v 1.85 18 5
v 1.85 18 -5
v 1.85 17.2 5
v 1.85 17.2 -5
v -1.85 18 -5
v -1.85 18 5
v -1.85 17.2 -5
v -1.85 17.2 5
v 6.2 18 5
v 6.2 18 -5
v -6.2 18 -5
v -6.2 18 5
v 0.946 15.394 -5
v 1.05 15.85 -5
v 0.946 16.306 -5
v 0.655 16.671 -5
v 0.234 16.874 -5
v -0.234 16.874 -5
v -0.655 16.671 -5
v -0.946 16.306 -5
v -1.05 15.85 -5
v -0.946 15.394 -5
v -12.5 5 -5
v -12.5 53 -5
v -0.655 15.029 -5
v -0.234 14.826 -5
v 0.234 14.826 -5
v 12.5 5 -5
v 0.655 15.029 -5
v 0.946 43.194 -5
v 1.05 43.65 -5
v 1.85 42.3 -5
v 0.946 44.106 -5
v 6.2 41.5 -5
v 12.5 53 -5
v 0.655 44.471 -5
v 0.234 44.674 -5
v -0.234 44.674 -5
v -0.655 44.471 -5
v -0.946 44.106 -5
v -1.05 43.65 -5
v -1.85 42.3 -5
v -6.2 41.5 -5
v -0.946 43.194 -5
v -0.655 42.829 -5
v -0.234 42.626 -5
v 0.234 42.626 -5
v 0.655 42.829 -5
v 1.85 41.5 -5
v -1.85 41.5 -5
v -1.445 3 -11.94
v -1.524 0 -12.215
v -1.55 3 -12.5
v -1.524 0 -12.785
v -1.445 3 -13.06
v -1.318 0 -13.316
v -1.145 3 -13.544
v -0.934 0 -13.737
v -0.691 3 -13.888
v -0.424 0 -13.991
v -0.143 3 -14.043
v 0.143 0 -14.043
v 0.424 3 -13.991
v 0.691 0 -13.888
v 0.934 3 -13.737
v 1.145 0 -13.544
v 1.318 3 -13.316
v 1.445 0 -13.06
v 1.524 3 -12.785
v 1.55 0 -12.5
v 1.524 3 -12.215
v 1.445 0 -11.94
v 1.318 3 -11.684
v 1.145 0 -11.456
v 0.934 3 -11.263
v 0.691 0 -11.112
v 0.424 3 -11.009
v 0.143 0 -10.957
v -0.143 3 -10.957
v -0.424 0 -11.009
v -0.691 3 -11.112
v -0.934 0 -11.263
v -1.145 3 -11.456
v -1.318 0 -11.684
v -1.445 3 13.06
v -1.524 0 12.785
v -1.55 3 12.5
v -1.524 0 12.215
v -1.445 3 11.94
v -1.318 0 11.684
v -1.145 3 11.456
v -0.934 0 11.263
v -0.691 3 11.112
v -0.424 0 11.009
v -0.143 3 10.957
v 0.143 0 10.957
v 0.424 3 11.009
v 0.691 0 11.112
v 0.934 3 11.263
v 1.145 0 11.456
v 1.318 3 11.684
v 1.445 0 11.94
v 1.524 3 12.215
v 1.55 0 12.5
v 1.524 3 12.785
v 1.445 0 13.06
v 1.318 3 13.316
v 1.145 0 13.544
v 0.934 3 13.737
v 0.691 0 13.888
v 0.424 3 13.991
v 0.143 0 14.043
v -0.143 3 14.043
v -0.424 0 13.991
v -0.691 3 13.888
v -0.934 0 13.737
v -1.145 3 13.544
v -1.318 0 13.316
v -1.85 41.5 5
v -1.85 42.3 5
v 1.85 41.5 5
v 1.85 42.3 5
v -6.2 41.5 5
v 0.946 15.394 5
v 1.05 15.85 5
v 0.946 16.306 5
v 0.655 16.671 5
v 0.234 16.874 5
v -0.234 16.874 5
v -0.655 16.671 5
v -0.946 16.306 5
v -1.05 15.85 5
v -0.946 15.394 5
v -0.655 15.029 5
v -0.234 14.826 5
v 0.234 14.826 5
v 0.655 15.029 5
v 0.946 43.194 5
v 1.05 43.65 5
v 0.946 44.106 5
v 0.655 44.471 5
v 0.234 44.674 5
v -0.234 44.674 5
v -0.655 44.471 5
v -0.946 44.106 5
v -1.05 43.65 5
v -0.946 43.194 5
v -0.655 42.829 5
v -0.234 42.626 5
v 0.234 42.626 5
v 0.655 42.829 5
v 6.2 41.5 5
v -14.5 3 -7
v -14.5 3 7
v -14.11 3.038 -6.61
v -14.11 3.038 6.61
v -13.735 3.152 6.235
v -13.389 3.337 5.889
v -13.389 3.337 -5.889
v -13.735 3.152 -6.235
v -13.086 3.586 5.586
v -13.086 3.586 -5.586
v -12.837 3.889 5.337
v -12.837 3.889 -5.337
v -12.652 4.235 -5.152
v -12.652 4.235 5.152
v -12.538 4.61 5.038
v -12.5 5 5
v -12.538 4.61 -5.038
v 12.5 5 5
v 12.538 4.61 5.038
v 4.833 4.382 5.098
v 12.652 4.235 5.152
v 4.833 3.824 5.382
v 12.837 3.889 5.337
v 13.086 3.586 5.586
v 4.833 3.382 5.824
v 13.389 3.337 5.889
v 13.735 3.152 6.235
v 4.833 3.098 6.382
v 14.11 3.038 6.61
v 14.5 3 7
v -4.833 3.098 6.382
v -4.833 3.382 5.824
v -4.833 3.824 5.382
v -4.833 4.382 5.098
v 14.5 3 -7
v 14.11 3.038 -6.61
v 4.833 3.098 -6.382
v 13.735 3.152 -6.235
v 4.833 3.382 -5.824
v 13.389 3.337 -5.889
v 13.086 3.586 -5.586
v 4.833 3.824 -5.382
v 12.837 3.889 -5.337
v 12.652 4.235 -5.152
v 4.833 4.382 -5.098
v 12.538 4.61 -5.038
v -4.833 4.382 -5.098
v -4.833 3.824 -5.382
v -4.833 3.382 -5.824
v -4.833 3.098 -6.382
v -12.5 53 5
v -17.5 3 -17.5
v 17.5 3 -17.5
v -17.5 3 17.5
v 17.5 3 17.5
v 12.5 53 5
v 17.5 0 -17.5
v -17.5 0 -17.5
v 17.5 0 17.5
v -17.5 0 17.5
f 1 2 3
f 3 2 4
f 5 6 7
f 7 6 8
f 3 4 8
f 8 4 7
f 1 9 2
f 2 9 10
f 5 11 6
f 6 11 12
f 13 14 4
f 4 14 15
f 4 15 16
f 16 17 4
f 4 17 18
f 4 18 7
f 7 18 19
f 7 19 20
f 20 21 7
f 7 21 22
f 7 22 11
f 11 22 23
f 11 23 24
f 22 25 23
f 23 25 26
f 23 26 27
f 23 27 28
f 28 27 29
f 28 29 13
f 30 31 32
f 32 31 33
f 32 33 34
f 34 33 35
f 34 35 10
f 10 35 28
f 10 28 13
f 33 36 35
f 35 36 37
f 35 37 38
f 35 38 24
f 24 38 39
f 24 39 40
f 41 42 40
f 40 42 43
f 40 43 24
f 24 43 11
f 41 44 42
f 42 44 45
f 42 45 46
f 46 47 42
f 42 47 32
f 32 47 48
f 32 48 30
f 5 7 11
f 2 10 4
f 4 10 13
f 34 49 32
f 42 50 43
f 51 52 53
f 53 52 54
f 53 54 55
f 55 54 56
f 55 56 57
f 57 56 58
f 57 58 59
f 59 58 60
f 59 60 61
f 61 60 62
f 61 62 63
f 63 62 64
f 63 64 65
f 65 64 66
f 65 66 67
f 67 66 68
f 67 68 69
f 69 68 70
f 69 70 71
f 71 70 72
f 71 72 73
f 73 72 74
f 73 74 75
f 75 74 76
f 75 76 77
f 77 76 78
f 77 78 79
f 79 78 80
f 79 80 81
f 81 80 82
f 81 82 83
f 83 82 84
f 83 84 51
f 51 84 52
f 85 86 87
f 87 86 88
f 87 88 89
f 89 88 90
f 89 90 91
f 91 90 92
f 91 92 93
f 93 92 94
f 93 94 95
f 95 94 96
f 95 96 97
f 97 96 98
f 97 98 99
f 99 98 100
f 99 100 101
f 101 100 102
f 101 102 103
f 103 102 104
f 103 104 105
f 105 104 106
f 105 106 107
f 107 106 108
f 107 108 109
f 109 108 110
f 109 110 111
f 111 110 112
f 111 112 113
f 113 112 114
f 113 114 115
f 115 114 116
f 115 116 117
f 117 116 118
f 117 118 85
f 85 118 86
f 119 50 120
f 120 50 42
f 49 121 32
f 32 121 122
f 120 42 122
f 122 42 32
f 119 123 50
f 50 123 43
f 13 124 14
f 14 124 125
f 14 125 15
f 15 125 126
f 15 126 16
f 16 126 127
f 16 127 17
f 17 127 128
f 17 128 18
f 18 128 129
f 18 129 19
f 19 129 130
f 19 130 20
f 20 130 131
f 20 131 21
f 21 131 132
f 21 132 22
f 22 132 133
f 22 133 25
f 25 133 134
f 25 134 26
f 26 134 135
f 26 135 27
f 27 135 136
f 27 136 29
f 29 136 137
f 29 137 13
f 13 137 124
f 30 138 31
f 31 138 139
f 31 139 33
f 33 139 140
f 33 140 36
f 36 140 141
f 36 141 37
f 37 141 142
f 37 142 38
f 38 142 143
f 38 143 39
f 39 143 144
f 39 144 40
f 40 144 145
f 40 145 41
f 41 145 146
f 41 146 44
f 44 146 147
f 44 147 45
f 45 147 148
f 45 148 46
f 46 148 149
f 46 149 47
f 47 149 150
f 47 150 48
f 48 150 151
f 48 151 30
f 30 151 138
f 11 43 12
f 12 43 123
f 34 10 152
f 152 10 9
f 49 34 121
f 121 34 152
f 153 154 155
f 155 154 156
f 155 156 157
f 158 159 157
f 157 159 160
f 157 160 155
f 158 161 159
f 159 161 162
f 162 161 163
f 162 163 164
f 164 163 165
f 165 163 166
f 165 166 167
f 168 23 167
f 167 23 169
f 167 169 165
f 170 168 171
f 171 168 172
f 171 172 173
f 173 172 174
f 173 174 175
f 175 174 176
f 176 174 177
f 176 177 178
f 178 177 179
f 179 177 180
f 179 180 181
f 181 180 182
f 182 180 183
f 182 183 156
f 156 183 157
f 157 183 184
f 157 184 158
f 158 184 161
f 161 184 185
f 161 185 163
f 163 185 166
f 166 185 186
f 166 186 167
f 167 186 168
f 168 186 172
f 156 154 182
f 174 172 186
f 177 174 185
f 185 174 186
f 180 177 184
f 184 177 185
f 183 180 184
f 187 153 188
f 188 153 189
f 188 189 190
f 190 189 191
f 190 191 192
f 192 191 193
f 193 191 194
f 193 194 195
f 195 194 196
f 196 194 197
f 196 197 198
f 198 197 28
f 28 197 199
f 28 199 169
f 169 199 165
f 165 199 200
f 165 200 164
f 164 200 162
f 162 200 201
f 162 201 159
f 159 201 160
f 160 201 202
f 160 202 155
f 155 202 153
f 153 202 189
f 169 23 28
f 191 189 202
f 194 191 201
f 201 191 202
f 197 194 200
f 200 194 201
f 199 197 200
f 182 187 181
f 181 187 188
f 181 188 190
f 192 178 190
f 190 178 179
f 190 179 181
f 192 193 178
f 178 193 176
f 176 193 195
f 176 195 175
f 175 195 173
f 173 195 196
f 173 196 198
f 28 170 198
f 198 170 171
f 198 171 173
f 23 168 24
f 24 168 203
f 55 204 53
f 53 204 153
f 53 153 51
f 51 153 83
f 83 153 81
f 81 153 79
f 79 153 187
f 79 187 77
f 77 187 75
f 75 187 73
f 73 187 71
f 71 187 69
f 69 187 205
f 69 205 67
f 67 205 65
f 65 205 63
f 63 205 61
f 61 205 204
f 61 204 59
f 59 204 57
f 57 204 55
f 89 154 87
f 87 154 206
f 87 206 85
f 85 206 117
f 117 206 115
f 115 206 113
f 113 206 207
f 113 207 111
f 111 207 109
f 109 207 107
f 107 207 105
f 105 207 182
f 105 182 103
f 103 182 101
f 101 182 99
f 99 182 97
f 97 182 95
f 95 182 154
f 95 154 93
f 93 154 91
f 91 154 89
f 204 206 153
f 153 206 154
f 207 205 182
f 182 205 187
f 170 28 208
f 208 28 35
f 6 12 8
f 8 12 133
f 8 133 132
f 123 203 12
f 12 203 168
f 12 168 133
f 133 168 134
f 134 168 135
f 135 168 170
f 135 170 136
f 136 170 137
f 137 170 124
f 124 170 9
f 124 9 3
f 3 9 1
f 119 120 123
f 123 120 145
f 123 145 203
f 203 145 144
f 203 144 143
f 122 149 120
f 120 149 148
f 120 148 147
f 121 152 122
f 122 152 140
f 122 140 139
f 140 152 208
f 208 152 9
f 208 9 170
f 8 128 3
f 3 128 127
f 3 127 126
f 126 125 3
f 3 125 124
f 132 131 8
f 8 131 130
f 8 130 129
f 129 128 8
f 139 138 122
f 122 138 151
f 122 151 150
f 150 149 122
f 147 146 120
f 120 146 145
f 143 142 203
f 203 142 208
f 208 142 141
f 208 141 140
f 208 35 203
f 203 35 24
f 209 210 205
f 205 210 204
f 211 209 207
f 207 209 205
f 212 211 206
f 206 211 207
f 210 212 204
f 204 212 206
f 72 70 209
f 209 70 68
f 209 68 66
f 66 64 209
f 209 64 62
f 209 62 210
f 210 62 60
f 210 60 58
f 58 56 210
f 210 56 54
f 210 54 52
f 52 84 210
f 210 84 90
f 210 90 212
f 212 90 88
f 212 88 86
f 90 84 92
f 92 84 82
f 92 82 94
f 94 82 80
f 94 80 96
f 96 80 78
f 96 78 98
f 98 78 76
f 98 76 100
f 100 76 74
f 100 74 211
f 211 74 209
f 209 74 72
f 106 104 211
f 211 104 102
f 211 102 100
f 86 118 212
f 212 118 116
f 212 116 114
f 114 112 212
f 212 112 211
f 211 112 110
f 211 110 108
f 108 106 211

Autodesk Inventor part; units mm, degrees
ref_plane "YZ Plane" through (0, 0, 0) normal (1, 0, 0) x (0, 1, 0)
ref_plane "XZ Plane" through (0, 0, 0) normal (0, 1, 0) x (-1, 0, 0)
ref_plane "XY Plane" through (0, 0, 0) normal (0, 0, 1) x (1, 0, 0)
sketch "Sketch1" plane through (0, 0, 0) normal (0, 1, 0) x (-1, 0, 0)
  line L0 (-17.5, -17.5) -> (17.5, -17.5)
  line L1 (17.5, -17.5) -> (17.5, 17.5)
  line L2 (17.5, 17.5) -> (-17.5, 17.5)
  line L3 (-17.5, 17.5) -> (-17.5, -17.5)
  line L4 (-17.5, -17.5) -> (17.5, 17.5) construction
  line L5 (17.5, -17.5) -> (-17.5, 17.5) construction
  point P0 (0, 0)
  dimension "d0" = 35
  dimension "d1" = 35
extrude "Extrusion1" add sketch "Sketch1" along normal blind 3
sketch "Sketch2" plane through (0, 3, 0) normal (0, 1, 0) x (1, 0, 0)
  line L0 (-12.5, 5) -> (12.5, 5)
  line L1 (12.5, 5) -> (12.5, -5)
  line L2 (12.5, -5) -> (-12.5, -5)
  line L3 (-12.5, -5) -> (-12.5, 5)
  line L4 (-12.5, 5) -> (12.5, -5) construction
  line L5 (12.5, 5) -> (-12.5, -5) construction
  point P0 (0, 0)
  dimension "d4" = 25
  dimension "d5" = 10
extrude "Extrusion2" add sketch "Sketch2" along normal blind 50
sketch "Sketch3" plane through (-12.5, 3, 5) normal (0, 0, 1) x (1, 0, 0)
  line L0 (6.3, 38.5) -> (18.7, 38.5)
  line L1 (18.7, 38.5) -> (18.7, 15)
  line L2 (18.7, 15) -> (6.3, 15)
  line L3 (6.3, 15) -> (6.3, 38.5)
  line L4 (6.3, 38.5) -> (18.7, 15) construction
  line L5 (18.7, 38.5) -> (6.3, 15) construction
  line L6 (-5, 0) -> (30, 0) projected
  line L7 (0, 50) -> (25, 50) projected
  point P0 (12.5, -3)
  point P1 (12.5, 26.75)
  point P2 (12.5, 38.5)
  point P3 (12.5, 50)
  dimension "d8" = 12.4
  dimension "d9" = 23.5
  dimension "d10" = 15
fillet "Fillet1" radius 2 4 edges at (-12.5, 3, 0) (12.5, 3, 0) (0, 3, 5) (0, 3, -5)
extrude "Extrusion4" cut sketch "Sketch3" against normal through all
sketch "Sketch5" plane through (-12.5, 53, 5) normal (0, 0, 1) x (1, 0, 0)
  circle A0 centre (12.5, -9.35) radius 1.05
  line L0 (6.3, -11.5) -> (18.7, -11.5) projected
  line L1 (18.7, -11.5) -> (18.7, -35) construction
  line L2 (18.7, -23.25) -> (6.3, -23.25) construction
  circle A1 centre (12.5, -37.15) radius 1.05
  point P0 (12.5, -53)
  point P1 (12.5, -11.5)
  point P2 (12.5, -11.5)
  dimension "d18" = 2.1
  dimension "d19" = 2.15
extrude "Extrusion5" cut sketch "Sketch5" against normal blind 10
sketch "Sketch6" plane through (-6.2, 41.5, 5) normal (0, -1, 0) x (1, 0, 0)
  line L0 (12.4, 0) -> (12.4, -10) projected
  line L1 (0, 0) -> (0, -10) projected
  line L2 (0, 0) -> (12.4, 0) projected
  line L3 (12.4, -10) -> (0, -10) projected
  line L4 (8.05, -10) -> (4.35, -10)
  line L5 (4.35, -10) -> (4.35, 0)
  line L6 (4.35, 0) -> (8.05, 0)
  line L7 (8.05, 0) -> (8.05, -10)
  line L8 (8.05, -10) -> (4.35, 0) construction
  line L9 (4.35, -10) -> (8.05, 0) construction
  point P0 (6.2, -5)
  point P1 (6.2, -5)
  point P2 (6.2, -10)
  point P3 (6.2, -10)
  point P4 (8.05, -5)
  point P5 (12.4, -5)
  point P6 (8.05, 0)
  point P7 (4.35, 0)
  point P8 (4.35, -10)
  dimension "d22" = 3.7
  dimension "d23" = 10
extrude "Extrusion6" cut sketch "Sketch6" against normal blind 0.8 contours L7 L3 L5 L2
sketch "Sketch8" plane through (0, 0, 0) normal (0, -1, 0) x (1, 0, 0)
  line L0 (-17.5, 17.5) -> (17.5, 17.5) projected
  point P0 (0, 0)
  point P1 (0, 12.5)
  dimension "d41" = 5
hole "Hole2" at (0, 0, 12.5) direction (0, 1, 0) diameter 3.1 end through all
mirror "Mirror3" about plane through (0, 0, 0) normal (0, 0, 1) of "Hole2"
sketch "Sketch9" plane through (-6.2, 18, 5) normal (0, 1, 0) x (1, 0, 0)
  line L0 (4.35, 10) -> (4.35, 0) projected
  line L1 (8.05, 0) -> (8.05, 10) projected
  line L2 (4.35, 0) -> (8.05, 0) projected
  line L3 (8.05, 10) -> (4.35, 10) projected
  point P0 (6.2, 5)
extrude "Extrusion7" cut sketch "Sketch9" against normal blind 0.8
properties part number "base de motor"
